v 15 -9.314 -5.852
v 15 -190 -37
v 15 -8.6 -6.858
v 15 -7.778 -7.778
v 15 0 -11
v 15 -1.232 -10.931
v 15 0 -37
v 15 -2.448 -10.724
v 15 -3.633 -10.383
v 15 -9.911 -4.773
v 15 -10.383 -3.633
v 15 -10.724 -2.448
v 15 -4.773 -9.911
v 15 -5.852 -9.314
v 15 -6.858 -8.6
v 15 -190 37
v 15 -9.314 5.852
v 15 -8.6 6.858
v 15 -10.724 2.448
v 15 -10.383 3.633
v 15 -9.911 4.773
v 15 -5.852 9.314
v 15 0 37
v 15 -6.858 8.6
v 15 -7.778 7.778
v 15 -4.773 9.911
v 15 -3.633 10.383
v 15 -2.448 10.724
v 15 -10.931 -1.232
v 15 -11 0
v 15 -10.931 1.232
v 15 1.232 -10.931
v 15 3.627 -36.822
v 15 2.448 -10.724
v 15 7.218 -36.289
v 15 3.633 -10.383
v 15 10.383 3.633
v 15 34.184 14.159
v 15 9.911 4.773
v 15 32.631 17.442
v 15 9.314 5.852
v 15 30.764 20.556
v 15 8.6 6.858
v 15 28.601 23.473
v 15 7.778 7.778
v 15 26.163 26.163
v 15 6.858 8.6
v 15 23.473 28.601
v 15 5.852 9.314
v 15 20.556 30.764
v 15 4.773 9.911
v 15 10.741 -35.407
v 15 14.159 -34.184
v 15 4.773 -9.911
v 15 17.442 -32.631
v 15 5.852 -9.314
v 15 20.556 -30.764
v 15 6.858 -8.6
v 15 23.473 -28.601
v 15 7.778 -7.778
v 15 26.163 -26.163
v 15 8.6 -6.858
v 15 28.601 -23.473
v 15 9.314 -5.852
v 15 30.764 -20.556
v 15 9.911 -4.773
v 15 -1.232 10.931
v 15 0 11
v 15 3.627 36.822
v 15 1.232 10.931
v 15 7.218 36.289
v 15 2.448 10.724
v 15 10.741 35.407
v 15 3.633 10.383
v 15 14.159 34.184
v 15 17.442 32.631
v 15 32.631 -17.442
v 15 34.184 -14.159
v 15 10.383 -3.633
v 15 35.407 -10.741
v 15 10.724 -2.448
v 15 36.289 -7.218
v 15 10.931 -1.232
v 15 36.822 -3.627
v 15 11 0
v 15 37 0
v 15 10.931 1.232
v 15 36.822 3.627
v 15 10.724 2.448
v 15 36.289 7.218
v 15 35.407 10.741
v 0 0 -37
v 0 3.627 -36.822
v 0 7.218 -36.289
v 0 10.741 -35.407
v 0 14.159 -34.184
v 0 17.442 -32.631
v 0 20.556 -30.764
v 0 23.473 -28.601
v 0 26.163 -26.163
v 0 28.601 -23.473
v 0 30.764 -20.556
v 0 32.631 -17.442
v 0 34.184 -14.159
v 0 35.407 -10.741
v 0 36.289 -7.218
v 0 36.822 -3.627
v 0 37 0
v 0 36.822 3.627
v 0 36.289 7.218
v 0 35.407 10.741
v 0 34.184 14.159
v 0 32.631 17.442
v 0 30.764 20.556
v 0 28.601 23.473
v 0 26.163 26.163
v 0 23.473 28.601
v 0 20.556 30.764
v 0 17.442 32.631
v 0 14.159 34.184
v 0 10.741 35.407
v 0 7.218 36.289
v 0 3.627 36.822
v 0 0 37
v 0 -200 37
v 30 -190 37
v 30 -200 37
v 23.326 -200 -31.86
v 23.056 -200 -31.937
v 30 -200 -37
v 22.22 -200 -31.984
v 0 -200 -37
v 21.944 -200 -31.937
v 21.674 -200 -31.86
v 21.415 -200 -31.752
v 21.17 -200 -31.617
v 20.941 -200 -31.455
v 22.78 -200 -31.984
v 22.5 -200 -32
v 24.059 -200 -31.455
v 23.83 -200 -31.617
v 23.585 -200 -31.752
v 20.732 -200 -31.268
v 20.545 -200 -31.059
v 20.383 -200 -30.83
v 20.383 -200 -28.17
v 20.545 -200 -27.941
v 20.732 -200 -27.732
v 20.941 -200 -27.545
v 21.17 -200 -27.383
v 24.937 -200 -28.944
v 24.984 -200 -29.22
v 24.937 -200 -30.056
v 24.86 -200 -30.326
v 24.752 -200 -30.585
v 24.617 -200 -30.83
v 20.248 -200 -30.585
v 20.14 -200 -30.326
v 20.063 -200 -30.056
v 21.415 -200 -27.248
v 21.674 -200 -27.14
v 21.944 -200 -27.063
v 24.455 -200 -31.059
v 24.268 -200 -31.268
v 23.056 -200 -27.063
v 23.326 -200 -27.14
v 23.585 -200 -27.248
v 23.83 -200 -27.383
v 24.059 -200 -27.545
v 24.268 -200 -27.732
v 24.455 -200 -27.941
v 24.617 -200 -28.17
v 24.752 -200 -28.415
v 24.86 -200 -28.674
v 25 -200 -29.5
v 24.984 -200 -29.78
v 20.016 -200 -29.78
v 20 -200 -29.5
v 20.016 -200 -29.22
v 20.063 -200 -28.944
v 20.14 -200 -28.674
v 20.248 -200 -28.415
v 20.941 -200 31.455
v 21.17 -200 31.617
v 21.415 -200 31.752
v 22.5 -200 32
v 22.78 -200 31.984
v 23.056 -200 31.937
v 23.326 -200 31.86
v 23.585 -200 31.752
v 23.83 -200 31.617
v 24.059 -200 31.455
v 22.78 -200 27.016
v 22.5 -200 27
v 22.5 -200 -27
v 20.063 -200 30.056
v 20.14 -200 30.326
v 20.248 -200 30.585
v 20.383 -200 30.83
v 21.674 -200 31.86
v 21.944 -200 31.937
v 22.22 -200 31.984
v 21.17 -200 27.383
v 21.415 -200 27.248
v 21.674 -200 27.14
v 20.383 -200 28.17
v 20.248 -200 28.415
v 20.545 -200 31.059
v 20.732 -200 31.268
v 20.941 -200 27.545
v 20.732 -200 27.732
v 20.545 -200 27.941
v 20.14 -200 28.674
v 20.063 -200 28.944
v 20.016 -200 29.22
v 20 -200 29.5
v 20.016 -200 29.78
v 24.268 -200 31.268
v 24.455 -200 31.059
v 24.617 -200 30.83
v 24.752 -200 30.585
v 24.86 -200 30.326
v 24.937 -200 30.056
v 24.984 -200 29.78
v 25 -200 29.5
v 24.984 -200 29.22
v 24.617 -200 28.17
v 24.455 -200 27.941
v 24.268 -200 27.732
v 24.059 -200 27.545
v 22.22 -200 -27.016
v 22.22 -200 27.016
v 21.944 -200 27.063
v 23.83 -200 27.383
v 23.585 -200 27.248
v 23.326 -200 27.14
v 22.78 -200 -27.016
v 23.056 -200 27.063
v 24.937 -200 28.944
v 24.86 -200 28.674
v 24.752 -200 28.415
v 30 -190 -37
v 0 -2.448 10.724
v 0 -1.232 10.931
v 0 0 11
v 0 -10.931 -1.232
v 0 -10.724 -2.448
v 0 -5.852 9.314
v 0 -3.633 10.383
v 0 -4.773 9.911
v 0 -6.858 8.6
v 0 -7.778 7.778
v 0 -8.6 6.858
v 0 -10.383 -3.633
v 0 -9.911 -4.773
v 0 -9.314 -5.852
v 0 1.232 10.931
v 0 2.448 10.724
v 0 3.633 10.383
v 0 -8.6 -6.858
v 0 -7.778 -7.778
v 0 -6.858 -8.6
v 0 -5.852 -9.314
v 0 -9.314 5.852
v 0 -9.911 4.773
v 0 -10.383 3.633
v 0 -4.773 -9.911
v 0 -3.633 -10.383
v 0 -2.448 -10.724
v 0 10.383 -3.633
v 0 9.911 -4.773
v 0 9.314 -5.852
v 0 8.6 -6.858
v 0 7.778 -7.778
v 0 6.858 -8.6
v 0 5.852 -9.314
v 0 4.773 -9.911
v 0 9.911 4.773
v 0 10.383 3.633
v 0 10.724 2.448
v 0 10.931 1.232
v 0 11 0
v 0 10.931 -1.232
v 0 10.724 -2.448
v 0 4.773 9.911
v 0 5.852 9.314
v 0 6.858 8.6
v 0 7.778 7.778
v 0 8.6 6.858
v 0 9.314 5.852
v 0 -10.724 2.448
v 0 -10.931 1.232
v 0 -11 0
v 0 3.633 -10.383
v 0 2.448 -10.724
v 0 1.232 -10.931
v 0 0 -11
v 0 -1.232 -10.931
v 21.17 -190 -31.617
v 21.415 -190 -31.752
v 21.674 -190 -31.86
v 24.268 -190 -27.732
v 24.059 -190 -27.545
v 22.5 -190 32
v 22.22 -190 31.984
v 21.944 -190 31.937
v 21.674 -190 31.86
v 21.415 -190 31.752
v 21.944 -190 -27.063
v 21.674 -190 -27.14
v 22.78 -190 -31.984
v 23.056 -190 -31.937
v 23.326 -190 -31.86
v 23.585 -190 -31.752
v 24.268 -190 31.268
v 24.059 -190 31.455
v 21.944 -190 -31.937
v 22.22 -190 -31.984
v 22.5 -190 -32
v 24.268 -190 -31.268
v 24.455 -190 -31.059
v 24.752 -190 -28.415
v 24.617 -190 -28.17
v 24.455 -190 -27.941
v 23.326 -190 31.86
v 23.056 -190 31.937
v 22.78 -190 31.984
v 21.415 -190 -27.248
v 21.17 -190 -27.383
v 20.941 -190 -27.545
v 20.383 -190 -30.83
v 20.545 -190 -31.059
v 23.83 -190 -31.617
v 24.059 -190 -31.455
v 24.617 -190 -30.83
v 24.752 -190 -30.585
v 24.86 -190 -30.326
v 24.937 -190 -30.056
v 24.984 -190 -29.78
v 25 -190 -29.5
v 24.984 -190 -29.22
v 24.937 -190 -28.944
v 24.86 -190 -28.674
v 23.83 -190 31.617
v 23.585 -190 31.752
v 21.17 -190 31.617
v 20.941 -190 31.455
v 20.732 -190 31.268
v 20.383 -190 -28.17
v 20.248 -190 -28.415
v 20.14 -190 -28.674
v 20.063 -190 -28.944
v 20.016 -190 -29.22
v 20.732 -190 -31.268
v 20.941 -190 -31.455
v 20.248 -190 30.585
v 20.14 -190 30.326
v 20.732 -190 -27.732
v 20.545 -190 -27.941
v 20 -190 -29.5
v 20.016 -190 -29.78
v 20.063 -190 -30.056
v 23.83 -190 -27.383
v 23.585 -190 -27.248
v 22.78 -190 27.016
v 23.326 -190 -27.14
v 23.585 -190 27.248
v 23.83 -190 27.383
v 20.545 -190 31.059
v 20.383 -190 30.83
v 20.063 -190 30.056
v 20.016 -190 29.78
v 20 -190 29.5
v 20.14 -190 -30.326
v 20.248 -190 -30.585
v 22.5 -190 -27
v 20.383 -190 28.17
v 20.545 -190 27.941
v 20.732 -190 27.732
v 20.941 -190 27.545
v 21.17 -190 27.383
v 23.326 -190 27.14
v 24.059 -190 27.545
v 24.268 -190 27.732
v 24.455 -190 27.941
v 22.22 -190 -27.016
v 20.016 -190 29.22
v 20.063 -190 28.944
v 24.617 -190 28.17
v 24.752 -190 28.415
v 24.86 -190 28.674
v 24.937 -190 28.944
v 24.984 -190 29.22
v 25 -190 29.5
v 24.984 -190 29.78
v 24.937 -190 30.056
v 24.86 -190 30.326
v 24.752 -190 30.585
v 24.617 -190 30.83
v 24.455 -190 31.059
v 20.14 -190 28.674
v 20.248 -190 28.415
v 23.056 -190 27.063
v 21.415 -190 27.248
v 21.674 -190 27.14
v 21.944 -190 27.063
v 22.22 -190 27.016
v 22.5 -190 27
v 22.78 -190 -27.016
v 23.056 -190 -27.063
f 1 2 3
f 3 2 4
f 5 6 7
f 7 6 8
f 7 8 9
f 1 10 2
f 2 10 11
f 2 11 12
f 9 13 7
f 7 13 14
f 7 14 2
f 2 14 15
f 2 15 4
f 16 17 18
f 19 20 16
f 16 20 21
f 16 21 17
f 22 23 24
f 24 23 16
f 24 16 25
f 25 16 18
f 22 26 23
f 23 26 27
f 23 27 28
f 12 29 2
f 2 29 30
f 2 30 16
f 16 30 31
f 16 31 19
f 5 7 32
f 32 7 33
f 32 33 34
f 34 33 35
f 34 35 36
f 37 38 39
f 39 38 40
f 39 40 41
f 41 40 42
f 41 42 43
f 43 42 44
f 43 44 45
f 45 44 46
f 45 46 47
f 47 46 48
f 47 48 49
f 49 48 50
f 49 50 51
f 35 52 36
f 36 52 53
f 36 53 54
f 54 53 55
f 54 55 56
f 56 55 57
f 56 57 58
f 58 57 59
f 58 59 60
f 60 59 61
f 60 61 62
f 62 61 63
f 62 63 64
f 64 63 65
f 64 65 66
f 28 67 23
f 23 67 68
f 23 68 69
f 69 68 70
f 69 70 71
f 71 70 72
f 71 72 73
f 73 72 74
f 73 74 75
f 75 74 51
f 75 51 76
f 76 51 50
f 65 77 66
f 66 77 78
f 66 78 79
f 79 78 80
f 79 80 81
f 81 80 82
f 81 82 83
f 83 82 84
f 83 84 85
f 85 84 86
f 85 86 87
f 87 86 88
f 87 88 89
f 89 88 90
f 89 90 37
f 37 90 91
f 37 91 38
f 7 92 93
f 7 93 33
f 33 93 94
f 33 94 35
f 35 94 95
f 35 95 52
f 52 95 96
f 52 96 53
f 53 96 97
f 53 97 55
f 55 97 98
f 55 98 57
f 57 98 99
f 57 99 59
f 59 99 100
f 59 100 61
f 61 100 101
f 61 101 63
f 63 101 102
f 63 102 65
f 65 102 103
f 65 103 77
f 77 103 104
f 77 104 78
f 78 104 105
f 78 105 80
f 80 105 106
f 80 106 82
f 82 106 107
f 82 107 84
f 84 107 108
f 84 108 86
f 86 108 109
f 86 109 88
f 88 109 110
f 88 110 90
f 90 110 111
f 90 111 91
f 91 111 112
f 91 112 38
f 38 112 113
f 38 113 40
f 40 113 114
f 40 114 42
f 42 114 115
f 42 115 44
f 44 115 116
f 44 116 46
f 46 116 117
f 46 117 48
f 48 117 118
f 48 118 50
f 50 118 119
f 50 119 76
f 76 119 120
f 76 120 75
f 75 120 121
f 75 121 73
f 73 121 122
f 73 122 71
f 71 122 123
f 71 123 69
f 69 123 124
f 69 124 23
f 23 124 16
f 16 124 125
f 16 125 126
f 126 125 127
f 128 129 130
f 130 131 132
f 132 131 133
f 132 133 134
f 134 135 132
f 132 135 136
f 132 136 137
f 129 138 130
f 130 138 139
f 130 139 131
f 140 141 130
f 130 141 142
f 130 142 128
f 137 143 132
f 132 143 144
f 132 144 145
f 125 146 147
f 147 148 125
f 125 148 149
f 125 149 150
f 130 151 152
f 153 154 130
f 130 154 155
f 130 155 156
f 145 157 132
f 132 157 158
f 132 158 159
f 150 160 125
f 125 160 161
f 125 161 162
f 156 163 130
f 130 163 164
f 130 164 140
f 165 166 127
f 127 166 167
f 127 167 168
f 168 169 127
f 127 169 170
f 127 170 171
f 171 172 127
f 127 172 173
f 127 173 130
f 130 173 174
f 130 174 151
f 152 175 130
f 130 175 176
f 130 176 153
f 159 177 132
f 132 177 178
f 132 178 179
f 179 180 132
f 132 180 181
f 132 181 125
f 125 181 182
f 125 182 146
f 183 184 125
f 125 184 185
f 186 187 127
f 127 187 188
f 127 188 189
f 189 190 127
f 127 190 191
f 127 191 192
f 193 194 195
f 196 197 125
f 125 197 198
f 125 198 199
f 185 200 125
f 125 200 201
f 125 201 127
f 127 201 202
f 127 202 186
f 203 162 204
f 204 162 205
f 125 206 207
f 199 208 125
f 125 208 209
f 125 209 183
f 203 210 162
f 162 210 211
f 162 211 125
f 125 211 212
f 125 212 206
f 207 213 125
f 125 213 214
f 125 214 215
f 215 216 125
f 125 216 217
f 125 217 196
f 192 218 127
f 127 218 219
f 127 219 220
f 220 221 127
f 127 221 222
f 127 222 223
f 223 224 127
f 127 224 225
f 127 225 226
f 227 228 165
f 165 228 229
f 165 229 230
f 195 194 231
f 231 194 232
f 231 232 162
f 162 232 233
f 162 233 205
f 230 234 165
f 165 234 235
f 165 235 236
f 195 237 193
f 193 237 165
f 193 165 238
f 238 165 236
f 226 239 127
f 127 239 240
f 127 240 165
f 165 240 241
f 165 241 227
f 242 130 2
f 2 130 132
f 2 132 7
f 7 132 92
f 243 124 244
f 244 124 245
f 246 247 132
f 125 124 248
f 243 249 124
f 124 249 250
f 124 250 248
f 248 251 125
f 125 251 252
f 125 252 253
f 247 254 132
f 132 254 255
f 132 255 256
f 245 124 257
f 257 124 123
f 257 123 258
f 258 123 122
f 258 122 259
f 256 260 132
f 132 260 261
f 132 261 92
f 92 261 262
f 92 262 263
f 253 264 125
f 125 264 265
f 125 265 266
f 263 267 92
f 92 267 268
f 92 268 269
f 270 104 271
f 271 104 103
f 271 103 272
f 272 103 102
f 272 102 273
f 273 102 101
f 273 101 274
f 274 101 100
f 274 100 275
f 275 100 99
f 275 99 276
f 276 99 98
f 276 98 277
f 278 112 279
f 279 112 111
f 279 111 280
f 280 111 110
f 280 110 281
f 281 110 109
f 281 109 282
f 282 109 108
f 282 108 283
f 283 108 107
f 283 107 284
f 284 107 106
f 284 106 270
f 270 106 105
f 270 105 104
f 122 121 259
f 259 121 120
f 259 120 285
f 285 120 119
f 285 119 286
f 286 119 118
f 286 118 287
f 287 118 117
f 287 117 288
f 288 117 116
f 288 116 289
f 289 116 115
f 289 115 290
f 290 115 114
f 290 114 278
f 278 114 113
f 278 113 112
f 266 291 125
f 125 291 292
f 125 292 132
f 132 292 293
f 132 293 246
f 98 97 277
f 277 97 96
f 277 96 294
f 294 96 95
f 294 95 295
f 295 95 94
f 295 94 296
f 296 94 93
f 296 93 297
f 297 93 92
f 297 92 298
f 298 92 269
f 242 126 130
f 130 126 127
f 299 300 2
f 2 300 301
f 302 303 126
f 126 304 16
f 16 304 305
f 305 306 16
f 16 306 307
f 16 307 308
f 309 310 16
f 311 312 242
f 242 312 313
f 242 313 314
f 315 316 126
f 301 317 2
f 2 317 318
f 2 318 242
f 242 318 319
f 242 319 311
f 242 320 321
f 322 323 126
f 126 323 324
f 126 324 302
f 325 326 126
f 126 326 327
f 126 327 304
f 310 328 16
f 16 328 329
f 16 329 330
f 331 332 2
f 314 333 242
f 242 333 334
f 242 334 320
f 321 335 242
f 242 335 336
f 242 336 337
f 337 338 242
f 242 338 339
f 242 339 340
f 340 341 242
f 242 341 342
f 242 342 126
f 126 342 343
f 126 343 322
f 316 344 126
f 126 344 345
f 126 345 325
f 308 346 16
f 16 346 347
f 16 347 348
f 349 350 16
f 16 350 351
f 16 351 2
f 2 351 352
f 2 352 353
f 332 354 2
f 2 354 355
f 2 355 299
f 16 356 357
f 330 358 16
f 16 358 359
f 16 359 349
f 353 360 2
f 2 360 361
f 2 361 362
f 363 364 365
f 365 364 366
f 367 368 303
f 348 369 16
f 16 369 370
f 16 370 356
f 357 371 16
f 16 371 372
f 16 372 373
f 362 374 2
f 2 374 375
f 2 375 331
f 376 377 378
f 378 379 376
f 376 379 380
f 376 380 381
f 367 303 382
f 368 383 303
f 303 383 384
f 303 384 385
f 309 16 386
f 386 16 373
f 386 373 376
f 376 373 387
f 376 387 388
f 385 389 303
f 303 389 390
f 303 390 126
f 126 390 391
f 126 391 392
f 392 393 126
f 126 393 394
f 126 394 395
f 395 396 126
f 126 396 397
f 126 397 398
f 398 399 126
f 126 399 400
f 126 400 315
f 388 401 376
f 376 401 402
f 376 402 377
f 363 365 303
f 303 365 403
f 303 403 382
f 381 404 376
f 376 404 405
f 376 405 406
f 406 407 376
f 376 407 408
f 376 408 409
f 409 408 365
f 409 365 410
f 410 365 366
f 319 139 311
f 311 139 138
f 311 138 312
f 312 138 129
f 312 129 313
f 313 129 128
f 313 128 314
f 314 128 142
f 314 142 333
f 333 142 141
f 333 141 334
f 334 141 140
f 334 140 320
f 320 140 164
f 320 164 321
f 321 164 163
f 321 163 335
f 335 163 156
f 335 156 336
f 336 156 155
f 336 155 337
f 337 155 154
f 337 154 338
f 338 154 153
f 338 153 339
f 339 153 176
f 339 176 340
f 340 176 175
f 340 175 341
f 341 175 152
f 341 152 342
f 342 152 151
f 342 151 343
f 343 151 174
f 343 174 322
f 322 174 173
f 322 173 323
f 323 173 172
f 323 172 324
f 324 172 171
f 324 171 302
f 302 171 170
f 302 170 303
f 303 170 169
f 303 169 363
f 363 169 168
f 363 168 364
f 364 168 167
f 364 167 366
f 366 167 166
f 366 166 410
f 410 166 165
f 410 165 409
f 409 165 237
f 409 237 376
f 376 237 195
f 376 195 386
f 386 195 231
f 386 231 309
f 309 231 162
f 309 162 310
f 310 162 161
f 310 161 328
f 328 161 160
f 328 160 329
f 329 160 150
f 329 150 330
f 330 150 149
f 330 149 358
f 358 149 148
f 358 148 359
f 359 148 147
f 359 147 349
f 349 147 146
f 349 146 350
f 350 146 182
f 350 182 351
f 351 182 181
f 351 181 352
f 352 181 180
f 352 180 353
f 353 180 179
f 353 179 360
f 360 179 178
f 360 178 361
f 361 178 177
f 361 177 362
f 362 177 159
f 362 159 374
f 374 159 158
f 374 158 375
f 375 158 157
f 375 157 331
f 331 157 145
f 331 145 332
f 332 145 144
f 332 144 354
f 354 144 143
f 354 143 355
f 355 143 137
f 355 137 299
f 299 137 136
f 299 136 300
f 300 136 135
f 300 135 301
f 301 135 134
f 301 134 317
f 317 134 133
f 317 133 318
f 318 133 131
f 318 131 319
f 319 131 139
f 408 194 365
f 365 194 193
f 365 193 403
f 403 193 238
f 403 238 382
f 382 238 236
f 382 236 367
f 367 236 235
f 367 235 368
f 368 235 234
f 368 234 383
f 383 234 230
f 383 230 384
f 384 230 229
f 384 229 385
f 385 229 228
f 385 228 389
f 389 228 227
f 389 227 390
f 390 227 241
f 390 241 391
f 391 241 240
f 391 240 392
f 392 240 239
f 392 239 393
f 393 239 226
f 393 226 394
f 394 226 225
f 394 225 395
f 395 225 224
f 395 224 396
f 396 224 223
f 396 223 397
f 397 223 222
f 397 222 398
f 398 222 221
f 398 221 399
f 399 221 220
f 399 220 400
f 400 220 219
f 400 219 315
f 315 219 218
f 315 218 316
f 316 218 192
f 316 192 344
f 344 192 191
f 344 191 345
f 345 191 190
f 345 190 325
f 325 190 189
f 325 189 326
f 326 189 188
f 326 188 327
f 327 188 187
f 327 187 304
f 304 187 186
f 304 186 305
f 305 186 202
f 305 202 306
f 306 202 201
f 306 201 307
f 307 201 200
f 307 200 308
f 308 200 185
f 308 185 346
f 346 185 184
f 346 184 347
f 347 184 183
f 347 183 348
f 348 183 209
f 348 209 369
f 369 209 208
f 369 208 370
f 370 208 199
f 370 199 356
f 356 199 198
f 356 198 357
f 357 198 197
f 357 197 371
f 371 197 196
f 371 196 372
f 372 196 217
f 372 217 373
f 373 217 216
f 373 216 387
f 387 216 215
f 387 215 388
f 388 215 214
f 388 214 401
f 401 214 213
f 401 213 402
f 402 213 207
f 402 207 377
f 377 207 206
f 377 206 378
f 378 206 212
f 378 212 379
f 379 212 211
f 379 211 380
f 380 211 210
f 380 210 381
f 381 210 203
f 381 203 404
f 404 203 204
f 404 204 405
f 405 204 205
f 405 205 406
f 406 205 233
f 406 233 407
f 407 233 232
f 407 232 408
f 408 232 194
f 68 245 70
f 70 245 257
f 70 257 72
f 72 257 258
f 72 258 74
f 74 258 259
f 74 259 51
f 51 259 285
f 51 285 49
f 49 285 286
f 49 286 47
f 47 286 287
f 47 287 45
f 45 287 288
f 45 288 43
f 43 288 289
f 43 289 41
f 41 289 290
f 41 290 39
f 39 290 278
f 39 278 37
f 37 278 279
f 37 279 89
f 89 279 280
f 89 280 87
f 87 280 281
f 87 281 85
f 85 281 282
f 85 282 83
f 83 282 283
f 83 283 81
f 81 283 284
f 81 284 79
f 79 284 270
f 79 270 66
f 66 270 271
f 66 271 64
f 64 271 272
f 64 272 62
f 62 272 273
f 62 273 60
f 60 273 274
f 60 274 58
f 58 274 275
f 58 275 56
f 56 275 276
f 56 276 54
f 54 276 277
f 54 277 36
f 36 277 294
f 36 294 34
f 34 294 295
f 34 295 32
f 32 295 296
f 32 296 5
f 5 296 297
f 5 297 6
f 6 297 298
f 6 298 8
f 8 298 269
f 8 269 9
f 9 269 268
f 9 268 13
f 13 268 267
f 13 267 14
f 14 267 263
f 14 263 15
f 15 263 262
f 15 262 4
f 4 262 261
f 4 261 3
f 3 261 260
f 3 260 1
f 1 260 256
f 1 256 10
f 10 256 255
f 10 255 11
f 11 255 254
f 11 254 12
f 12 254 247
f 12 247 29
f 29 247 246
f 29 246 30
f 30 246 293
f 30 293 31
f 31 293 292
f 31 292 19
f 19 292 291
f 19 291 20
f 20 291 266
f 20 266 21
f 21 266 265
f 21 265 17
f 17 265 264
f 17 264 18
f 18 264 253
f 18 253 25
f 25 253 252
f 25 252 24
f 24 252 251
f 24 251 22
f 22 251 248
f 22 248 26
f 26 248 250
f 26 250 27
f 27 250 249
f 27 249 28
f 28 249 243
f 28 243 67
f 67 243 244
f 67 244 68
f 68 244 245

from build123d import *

# Parameters (mm, degrees)
BOSS_EXTRUDE1_DEPTH = 15
SKETCH2_W           = 15
SKETCH2_H           = 74
BOSS_EXTRUDE2_DEPTH = 10
SKETCH3_R           = 2.5
CUT_EXTRUDE1_DEPTH  = 10
SKETCH4_R           = 11
CUT_EXTRUDE2_DEPTH  = 31


with BuildPart() as part:
    # Sketch1 → Boss-Extrude1 (new body)
    with BuildSketch(Plane(origin=(0, 0, 0), x_dir=(0, 0, -1), z_dir=(1, 0, 0))):
        with BuildLine():
            Line((-37, 0), (-37, -200))
            Line((-37, -200), (37, -200))
            Line((37, -200), (37, 0))
            ThreePointArc((37, 0), (0, 37), (-37, 0))
        make_face()
    extrude(amount=BOSS_EXTRUDE1_DEPTH)

    # Sketch2 → Boss-Extrude2 (add)
    with BuildSketch(Plane.XZ.offset(200)):
        with Locations((22.5, 0)):
            Rectangle(SKETCH2_W, SKETCH2_H)
    extrude(amount=-BOSS_EXTRUDE2_DEPTH)

    # Sketch3 → Cut-Extrude1 (cut)
    with BuildSketch(Plane.XZ.offset(200)):
        with Locations((22.5, 29.5)):
            Circle(SKETCH3_R)
        with Locations((22.5, -29.5)):
            Circle(SKETCH3_R)
    extrude(amount=-CUT_EXTRUDE1_DEPTH, mode=Mode.SUBTRACT)

    # Sketch4 → Cut-Extrude2 (cut, through all)
    with BuildSketch(Plane.ZY):
        Circle(SKETCH4_R)
    extrude(amount=-CUT_EXTRUDE2_DEPTH, mode=Mode.SUBTRACT)


solid = part.part
